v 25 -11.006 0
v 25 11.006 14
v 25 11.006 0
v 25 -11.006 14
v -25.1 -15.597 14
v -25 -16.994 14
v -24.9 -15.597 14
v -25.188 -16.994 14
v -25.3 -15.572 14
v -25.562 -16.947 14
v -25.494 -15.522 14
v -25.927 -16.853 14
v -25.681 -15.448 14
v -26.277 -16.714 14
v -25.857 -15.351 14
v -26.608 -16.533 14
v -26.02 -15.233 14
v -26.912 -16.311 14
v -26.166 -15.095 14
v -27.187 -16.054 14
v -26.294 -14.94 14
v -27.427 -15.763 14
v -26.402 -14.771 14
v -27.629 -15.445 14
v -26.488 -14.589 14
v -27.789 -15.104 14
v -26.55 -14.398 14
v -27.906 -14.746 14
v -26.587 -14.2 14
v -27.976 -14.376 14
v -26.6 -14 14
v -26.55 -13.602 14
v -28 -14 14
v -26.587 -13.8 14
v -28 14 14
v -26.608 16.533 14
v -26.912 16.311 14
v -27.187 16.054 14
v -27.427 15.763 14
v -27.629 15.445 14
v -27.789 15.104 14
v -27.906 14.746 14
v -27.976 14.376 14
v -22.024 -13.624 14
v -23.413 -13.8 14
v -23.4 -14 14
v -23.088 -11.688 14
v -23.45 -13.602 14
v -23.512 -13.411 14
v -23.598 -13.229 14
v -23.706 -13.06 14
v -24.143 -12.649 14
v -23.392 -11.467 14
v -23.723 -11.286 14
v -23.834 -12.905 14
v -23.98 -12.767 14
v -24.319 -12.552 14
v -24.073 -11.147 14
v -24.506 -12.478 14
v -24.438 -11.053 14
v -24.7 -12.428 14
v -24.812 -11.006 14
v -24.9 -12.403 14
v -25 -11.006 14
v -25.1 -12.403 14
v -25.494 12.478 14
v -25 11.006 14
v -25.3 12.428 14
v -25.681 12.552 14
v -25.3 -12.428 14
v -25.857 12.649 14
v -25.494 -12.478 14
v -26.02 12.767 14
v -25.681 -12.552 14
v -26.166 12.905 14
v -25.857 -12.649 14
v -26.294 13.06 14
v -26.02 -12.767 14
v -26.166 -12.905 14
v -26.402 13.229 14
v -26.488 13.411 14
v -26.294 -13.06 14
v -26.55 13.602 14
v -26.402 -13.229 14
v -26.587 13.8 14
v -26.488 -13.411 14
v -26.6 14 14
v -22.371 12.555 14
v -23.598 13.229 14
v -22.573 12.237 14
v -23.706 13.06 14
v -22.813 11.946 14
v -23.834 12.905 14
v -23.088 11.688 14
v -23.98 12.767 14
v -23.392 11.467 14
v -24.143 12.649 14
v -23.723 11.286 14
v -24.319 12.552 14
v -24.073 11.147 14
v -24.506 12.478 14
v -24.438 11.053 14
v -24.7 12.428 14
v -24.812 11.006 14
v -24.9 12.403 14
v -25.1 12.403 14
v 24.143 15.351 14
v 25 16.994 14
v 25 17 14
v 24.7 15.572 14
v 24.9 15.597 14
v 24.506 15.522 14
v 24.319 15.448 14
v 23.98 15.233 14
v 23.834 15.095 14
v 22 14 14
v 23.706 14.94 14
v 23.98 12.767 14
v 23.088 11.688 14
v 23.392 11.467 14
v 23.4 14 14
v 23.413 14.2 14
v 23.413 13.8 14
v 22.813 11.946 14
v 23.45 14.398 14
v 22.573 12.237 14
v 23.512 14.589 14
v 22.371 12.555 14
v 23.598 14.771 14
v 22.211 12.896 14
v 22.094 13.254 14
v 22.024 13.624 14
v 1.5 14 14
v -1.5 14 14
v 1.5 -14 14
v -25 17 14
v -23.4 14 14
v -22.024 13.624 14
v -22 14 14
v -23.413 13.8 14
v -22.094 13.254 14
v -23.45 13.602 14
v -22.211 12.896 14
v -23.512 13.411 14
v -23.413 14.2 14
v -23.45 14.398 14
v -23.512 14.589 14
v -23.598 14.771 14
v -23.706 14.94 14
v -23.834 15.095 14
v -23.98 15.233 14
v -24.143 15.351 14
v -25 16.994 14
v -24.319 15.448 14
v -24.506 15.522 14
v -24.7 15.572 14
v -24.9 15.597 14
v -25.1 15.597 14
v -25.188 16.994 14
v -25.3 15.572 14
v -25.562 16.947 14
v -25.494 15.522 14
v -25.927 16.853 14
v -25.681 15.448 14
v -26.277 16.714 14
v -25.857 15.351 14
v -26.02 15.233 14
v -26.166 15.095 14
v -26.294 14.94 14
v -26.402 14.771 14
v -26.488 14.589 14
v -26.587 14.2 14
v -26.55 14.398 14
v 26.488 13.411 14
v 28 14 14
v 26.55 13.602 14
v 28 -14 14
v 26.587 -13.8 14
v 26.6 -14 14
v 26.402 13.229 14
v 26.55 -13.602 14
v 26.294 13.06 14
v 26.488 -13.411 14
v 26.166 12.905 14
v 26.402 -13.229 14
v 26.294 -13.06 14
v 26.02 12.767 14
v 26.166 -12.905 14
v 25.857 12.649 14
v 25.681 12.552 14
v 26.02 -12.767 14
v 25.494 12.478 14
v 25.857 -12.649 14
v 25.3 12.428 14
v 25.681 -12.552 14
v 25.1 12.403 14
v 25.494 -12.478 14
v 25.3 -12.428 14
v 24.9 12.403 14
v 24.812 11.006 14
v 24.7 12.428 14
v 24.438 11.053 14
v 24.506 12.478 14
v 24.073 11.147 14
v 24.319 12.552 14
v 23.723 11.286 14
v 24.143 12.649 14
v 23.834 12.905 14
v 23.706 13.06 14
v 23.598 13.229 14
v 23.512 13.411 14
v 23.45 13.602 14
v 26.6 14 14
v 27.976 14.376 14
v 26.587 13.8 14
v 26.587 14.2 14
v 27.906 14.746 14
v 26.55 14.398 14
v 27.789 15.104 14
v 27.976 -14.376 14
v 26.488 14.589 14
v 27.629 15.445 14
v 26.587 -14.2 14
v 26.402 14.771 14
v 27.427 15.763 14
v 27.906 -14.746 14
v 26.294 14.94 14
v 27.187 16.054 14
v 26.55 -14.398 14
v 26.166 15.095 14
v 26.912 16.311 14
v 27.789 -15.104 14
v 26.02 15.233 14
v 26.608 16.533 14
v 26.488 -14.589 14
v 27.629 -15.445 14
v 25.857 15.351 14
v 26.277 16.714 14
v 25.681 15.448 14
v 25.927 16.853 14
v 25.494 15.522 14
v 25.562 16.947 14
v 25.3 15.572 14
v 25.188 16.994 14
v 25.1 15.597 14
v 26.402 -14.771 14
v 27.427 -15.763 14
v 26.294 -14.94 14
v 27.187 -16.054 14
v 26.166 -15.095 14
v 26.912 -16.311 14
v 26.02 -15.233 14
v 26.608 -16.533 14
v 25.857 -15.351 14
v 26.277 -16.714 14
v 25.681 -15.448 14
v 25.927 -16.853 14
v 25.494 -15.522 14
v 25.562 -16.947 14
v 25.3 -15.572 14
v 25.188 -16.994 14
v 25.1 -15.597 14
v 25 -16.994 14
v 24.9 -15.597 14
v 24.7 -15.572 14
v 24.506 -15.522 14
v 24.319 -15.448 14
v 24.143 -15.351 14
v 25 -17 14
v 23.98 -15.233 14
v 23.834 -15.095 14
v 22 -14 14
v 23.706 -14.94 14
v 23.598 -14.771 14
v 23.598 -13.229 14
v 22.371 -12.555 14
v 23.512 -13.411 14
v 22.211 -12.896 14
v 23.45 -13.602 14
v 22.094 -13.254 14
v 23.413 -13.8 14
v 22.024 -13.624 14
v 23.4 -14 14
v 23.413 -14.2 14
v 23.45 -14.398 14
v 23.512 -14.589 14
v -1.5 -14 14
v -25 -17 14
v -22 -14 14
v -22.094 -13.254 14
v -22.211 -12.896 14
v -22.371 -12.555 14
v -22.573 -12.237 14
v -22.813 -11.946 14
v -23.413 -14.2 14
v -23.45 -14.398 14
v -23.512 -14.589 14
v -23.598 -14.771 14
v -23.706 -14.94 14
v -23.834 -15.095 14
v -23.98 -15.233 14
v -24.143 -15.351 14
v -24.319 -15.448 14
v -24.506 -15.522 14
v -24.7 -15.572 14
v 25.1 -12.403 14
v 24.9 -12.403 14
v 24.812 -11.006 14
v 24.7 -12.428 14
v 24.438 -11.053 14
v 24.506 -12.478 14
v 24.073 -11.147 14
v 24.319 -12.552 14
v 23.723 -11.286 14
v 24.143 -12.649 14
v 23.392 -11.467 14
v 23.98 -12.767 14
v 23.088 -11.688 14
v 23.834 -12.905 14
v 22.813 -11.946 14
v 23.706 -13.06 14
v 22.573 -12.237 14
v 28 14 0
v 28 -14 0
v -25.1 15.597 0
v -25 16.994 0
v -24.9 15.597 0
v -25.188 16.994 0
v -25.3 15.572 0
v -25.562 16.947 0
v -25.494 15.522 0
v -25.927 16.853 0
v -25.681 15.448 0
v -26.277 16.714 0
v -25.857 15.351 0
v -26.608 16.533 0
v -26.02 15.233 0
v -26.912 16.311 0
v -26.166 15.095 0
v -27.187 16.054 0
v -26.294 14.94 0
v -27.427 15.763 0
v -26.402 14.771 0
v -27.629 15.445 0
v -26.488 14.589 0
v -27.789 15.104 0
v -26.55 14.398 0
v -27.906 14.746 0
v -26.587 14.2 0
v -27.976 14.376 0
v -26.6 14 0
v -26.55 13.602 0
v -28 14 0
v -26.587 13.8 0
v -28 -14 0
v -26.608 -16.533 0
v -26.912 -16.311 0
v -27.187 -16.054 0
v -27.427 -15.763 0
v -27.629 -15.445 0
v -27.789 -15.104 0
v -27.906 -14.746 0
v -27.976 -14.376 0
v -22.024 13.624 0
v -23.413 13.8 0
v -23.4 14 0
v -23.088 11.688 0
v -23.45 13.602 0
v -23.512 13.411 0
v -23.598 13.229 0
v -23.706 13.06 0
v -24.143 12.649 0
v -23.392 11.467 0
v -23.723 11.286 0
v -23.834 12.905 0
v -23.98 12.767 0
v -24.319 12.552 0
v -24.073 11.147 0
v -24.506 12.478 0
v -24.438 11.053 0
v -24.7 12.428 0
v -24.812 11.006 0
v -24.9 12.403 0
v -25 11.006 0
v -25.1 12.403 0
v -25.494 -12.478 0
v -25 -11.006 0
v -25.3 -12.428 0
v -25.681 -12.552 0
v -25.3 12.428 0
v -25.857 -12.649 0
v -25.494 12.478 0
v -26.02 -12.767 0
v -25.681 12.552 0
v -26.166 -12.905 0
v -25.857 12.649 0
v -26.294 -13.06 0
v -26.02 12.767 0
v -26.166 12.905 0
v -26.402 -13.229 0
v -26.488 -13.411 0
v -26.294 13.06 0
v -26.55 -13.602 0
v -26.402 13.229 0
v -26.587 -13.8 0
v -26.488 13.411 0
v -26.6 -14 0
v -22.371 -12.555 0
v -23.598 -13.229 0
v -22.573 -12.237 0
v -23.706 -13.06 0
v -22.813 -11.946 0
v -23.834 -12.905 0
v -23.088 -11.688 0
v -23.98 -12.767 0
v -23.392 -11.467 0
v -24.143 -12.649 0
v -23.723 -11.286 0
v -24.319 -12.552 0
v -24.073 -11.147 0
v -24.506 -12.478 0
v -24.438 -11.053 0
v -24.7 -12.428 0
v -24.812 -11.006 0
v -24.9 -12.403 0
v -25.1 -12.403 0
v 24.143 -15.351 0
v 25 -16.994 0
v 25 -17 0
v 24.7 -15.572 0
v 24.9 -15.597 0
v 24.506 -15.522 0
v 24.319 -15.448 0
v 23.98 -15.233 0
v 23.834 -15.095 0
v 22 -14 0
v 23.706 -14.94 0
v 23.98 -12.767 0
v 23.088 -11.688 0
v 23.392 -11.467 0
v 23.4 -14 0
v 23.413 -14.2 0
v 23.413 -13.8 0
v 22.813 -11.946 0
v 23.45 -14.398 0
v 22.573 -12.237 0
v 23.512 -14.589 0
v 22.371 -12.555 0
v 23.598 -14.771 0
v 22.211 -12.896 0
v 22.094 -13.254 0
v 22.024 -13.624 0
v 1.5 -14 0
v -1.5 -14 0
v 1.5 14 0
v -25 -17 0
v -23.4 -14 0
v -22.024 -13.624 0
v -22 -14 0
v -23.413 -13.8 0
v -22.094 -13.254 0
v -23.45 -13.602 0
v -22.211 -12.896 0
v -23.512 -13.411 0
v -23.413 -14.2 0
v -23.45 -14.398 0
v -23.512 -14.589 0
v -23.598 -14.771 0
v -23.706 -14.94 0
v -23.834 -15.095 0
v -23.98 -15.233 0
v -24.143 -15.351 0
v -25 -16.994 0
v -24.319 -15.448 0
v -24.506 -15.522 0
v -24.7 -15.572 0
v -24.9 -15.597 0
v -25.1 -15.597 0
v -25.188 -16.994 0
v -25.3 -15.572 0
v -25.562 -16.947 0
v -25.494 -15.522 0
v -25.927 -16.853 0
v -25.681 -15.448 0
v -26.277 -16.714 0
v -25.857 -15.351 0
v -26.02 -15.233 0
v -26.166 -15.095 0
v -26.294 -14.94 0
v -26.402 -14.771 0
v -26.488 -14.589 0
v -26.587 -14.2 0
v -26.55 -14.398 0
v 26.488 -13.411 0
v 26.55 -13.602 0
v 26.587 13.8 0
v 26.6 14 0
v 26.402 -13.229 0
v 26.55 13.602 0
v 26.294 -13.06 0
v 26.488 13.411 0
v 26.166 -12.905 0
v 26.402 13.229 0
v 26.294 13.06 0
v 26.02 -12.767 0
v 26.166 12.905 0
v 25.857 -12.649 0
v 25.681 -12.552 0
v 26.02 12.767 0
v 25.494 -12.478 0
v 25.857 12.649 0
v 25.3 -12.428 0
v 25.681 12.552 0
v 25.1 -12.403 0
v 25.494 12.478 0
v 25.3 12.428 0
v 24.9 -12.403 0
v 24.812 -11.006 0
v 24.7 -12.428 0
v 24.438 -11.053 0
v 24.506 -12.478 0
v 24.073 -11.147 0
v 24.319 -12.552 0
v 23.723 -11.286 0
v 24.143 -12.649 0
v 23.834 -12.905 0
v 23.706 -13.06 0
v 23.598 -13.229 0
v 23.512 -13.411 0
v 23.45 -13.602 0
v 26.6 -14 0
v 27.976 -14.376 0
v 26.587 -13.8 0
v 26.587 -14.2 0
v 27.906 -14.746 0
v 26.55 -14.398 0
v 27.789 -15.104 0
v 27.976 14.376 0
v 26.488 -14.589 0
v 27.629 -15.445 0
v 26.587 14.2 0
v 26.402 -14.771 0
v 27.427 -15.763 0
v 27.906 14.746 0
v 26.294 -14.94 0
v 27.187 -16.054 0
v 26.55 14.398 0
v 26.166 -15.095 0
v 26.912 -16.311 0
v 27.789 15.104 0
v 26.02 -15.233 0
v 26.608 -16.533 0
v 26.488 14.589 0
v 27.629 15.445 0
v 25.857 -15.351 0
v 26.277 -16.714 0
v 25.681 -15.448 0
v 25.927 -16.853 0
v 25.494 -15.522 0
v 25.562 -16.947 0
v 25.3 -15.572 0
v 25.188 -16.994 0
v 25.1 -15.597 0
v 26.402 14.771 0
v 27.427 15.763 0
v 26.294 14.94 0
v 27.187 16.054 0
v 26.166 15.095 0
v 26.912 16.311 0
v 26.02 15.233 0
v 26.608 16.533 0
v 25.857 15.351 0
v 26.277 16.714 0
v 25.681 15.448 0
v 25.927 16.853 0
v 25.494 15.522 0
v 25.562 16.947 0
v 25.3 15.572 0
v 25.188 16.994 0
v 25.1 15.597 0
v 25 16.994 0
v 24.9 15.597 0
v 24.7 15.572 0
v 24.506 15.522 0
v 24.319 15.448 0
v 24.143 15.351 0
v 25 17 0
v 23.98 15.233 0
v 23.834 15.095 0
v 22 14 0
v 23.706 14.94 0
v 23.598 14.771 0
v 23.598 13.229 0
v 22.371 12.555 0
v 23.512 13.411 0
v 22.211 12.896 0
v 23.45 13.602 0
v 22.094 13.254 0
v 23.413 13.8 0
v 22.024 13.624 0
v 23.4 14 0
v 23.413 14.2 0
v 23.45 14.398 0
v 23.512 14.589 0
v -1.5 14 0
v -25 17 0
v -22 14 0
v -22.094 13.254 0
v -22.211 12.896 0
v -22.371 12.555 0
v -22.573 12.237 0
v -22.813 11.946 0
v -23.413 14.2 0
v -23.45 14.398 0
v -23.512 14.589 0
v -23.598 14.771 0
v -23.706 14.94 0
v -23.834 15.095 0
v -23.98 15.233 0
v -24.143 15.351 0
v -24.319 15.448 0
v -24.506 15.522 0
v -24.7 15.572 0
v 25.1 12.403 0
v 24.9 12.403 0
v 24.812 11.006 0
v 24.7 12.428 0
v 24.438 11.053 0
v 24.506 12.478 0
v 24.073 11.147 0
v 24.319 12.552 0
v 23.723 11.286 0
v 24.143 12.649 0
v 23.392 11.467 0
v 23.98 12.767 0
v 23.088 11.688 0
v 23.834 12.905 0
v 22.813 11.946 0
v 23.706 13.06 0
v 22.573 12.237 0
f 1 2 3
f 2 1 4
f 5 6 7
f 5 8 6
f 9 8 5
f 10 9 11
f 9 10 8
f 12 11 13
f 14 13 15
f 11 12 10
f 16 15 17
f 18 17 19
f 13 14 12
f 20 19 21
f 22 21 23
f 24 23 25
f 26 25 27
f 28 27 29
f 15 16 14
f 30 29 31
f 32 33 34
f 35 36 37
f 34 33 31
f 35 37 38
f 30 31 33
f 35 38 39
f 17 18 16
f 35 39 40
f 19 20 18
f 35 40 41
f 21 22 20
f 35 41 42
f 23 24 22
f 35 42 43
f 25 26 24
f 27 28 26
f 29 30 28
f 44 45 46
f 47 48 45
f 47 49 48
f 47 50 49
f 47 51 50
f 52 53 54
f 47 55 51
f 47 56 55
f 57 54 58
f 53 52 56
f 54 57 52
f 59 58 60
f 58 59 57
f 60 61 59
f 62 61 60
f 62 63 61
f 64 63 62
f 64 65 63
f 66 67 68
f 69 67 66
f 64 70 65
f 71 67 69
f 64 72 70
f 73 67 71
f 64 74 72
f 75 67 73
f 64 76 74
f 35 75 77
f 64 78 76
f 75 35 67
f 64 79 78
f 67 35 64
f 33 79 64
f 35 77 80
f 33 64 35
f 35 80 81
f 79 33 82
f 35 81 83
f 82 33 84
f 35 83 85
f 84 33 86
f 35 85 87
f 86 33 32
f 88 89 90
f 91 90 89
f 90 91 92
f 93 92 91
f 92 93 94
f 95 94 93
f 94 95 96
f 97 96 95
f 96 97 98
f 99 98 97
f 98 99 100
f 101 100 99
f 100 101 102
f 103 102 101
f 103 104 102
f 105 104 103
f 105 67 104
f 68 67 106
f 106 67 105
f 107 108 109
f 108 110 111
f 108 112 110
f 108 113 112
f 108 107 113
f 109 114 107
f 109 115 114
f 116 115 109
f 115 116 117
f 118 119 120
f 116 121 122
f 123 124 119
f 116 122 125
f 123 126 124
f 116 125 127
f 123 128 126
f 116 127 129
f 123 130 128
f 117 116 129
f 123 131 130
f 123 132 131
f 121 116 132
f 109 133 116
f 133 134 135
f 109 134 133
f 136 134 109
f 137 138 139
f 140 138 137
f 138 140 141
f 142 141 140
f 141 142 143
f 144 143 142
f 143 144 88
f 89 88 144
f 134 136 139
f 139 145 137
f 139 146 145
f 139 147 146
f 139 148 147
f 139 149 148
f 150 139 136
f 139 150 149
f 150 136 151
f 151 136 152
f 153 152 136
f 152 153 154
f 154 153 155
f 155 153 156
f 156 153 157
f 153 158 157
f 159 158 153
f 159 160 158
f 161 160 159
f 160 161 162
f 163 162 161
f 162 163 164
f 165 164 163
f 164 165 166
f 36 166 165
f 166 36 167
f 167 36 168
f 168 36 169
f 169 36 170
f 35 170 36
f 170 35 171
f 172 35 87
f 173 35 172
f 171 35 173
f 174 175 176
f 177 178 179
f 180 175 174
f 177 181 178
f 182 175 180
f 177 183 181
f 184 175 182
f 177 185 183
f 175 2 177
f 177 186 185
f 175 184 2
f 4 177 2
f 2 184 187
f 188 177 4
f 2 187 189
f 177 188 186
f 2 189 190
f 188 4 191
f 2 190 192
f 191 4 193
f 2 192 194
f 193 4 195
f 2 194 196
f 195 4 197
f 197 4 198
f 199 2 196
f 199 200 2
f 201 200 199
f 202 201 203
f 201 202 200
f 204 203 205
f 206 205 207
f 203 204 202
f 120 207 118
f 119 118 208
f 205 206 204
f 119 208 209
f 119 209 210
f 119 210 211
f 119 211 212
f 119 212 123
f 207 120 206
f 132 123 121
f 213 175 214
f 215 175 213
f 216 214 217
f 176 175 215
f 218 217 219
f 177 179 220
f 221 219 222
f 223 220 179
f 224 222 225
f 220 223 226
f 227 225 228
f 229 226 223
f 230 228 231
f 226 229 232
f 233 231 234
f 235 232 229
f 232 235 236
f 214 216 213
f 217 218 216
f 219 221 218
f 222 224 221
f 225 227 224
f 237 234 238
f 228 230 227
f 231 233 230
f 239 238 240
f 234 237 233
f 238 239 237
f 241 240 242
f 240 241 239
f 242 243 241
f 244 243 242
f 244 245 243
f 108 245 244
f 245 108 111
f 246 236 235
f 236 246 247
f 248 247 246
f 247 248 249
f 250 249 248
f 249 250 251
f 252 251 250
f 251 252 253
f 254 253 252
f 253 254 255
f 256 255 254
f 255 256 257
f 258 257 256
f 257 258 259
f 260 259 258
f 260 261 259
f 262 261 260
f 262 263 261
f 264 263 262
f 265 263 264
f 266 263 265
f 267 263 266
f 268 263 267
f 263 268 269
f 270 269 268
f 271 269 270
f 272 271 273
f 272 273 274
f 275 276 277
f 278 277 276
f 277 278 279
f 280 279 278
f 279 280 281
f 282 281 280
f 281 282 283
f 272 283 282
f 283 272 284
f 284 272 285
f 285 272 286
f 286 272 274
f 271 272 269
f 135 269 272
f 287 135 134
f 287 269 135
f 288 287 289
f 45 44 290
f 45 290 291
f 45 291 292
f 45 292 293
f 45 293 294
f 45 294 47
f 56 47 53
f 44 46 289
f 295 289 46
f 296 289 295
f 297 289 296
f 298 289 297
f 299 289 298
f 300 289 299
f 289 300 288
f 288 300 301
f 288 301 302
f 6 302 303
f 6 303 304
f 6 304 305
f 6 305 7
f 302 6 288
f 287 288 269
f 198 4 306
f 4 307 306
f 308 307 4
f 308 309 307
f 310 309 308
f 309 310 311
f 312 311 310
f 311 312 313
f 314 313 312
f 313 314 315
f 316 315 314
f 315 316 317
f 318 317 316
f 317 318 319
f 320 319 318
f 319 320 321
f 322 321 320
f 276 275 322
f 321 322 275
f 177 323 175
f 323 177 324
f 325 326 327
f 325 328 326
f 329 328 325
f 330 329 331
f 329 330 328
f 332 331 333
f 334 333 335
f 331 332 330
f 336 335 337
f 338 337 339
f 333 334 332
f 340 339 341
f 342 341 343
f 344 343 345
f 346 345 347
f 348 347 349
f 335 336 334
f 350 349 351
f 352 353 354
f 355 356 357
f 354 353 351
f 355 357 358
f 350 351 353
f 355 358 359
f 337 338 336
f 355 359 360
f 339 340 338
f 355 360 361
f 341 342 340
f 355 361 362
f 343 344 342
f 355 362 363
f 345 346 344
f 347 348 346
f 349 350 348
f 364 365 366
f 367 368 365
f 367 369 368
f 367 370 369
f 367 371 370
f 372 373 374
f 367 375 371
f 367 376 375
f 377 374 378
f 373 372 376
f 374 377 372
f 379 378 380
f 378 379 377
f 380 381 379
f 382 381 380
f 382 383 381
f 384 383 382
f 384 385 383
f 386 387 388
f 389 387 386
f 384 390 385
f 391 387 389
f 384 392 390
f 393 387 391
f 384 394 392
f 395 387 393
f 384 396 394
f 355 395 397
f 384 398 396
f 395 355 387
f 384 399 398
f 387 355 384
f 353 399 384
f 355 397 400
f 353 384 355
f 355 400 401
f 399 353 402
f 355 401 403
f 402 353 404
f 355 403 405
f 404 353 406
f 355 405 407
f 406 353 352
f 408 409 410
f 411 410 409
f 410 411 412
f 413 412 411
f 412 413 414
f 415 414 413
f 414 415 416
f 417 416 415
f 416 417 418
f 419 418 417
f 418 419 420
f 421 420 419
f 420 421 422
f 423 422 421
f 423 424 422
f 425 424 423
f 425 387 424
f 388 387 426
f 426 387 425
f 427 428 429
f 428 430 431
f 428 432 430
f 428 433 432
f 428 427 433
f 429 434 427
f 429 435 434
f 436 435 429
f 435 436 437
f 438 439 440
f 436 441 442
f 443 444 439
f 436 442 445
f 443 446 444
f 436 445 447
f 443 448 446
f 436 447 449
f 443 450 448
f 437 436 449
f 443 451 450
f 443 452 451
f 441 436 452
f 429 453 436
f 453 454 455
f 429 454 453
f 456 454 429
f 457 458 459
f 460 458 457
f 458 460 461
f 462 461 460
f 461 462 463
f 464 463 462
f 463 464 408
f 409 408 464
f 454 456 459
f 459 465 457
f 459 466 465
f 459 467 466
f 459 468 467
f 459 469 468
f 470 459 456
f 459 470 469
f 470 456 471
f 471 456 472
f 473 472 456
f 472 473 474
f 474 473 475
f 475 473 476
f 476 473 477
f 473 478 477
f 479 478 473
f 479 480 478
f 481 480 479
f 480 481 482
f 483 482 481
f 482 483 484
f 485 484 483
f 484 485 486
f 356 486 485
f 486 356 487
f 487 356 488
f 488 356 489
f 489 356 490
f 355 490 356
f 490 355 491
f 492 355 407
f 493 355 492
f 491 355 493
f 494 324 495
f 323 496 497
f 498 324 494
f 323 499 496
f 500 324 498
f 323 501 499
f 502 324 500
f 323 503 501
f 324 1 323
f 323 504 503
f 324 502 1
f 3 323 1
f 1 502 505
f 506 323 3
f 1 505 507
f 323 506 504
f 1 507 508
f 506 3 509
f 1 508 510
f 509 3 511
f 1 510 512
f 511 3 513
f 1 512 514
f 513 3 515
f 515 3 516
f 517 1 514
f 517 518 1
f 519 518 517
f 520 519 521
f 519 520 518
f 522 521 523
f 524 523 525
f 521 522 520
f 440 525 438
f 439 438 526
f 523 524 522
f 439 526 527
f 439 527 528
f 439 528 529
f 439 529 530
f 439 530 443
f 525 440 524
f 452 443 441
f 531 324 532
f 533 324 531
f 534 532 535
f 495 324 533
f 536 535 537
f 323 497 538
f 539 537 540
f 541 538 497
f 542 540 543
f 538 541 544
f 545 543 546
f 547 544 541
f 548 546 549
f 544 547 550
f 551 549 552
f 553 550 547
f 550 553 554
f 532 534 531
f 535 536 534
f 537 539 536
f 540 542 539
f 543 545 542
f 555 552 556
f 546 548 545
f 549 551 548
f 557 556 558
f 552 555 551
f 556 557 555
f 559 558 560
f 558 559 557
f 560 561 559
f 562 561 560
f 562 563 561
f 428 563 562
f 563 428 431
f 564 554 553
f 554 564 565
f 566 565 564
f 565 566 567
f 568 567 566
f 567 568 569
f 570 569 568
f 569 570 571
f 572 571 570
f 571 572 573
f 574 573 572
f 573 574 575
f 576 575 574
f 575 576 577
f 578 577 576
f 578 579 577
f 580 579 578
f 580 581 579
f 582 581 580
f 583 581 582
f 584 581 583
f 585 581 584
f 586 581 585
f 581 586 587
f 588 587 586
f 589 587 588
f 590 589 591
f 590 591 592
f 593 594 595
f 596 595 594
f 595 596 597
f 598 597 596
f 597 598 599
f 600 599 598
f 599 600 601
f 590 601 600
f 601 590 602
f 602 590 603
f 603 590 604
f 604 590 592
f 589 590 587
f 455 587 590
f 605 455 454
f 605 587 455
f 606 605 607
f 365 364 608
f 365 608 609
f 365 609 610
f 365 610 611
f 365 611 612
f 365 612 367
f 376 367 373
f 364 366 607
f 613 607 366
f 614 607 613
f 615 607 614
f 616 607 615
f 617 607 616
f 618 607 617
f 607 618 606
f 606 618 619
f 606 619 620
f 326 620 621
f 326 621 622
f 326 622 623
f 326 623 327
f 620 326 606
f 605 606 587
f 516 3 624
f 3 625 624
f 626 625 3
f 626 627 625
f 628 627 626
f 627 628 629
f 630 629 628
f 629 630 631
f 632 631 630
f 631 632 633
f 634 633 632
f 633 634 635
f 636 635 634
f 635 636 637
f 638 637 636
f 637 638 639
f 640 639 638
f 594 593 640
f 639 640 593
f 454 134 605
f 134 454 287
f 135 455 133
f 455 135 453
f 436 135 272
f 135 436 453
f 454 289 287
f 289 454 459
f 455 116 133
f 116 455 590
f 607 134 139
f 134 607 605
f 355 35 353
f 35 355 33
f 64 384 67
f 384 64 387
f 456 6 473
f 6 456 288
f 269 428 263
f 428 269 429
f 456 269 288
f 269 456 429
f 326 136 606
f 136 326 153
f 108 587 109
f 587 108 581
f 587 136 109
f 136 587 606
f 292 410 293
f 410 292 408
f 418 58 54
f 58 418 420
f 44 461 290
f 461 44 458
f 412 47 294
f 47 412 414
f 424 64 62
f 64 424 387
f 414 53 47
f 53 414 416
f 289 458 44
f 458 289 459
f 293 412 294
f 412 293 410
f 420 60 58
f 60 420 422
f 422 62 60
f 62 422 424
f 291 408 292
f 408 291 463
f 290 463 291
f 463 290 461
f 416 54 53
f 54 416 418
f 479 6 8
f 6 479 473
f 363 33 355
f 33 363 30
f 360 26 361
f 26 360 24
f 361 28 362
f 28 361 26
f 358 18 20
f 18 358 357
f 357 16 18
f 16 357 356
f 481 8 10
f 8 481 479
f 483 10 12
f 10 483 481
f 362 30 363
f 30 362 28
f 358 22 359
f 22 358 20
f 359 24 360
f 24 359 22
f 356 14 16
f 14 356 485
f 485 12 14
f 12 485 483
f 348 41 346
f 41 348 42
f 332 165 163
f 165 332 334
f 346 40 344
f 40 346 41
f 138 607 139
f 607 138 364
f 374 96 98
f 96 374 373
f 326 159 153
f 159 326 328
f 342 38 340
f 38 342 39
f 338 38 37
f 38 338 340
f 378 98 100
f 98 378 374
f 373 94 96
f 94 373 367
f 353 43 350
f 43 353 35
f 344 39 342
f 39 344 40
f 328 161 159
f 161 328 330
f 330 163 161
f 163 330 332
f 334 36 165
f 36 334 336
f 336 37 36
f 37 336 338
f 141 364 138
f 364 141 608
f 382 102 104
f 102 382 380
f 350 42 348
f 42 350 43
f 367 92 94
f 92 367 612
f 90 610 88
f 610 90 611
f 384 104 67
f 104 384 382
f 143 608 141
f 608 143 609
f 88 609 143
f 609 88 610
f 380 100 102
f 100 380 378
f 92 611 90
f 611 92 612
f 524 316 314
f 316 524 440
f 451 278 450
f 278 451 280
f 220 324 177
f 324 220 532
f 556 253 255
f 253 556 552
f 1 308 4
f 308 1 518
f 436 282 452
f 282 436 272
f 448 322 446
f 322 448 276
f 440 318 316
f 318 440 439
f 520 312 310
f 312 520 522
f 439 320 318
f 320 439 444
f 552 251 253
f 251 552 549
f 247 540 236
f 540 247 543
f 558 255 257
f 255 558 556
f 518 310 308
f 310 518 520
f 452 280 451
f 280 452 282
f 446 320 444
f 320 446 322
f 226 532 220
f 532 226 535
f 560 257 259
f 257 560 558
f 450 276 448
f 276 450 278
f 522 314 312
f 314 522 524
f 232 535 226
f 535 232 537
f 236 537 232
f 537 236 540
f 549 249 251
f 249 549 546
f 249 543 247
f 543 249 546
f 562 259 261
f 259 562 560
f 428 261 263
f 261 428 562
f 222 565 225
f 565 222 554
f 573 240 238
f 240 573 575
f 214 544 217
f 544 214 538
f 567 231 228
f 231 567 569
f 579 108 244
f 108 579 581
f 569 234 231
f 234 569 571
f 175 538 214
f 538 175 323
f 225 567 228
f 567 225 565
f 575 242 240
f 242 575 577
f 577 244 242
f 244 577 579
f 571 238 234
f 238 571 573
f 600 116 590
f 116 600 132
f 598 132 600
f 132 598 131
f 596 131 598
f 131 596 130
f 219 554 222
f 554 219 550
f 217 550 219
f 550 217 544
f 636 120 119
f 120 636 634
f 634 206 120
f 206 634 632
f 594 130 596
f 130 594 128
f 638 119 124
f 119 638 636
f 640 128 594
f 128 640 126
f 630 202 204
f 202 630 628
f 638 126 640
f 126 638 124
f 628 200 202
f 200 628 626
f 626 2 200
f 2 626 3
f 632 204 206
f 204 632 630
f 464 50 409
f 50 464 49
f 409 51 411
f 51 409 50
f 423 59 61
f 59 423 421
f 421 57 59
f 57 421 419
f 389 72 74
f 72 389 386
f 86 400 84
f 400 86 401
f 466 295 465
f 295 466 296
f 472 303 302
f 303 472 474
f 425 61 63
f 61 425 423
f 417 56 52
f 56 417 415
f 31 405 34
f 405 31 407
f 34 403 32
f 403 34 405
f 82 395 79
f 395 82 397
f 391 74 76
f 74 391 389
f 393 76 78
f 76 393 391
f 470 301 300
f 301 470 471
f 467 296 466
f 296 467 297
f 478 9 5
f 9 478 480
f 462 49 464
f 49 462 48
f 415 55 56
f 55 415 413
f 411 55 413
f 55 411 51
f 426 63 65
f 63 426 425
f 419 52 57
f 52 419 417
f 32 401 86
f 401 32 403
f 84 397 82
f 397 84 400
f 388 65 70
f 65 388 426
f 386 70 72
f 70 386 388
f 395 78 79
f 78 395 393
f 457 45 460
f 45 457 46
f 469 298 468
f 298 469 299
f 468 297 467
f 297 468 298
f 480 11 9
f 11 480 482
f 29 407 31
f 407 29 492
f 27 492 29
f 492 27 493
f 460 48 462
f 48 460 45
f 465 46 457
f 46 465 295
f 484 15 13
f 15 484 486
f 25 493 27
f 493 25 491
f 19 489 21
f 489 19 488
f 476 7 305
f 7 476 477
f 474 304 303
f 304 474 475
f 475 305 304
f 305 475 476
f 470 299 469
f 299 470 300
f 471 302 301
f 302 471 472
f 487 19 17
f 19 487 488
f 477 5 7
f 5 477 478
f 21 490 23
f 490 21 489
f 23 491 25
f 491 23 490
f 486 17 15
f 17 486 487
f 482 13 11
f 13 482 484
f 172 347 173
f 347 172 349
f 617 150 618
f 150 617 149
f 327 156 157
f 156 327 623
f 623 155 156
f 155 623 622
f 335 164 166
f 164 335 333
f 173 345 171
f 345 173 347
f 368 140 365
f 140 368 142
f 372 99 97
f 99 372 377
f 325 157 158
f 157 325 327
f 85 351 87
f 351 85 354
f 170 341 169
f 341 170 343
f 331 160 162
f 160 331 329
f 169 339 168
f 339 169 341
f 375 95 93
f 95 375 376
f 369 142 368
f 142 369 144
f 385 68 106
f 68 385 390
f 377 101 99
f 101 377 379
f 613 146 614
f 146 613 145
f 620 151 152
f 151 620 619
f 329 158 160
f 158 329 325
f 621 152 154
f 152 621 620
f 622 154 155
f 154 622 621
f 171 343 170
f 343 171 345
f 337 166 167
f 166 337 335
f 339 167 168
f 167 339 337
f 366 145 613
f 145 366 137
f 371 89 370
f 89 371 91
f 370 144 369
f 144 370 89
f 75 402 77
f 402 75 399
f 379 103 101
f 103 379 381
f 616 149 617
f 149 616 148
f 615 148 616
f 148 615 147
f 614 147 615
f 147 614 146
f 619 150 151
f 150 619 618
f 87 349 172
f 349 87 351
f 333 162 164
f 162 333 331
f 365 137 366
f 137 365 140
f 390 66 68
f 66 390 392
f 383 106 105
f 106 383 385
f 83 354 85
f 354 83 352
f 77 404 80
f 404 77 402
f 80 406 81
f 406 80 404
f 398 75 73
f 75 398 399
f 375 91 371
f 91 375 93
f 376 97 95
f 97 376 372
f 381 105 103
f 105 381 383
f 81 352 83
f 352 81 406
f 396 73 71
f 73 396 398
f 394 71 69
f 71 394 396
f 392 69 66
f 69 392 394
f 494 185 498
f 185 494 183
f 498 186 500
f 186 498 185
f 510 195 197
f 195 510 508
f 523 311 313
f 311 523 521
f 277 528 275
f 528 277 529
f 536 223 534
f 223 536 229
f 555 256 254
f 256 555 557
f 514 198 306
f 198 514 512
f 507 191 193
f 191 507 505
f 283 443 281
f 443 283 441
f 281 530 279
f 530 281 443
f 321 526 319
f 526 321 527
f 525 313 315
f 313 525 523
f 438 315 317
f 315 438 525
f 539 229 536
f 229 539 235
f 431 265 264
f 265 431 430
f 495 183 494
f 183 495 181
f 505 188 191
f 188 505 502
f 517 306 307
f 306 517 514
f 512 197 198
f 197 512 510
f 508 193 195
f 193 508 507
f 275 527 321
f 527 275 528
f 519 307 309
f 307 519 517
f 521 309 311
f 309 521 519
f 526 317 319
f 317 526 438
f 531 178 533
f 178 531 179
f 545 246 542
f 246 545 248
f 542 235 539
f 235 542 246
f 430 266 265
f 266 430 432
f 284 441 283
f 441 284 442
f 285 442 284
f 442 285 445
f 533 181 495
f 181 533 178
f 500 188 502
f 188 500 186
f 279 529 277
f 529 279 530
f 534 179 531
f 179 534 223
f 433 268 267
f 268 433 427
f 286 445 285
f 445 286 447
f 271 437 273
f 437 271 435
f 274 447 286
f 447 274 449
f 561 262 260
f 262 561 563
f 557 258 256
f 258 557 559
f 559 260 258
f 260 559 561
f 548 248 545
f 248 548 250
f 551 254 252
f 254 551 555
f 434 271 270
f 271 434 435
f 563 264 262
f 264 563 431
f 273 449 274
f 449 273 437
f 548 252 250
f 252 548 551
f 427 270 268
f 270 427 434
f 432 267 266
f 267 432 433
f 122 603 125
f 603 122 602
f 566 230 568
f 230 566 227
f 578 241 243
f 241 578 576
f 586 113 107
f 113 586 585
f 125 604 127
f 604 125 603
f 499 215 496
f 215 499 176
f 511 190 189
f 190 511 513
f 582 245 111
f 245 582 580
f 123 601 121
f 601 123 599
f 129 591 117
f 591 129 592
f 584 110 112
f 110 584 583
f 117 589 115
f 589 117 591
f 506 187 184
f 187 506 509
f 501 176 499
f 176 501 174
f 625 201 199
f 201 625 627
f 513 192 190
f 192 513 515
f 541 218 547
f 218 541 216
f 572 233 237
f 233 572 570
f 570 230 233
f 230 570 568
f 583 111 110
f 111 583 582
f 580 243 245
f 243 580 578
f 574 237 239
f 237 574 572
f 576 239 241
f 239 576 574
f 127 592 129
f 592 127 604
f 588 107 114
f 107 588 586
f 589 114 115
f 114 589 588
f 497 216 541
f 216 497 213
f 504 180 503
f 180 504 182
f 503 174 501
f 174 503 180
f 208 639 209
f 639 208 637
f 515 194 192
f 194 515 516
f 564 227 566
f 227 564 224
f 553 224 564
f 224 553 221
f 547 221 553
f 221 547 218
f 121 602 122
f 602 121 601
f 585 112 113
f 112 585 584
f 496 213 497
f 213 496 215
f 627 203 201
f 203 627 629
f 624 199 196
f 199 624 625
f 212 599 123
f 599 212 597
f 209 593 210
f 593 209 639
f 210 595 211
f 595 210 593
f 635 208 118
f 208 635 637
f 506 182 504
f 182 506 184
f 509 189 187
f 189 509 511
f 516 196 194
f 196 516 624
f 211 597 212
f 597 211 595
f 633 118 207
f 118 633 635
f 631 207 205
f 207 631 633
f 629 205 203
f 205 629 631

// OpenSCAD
// file: params.scad
  base = 0.0;
  length = 50.0;
  len2 = length/2.0;
  width = 28.0;
  w2 = width/2.0;
  height = 14.0;
  thickness = 3.0;
  th2 = thickness/2.0;
  x1 = 25.0;
  y1 = 11.5;
  th_plate = 4.0;
  ha_thick = 4.0; // hose adapter plate thickness

  // depth of threadable hole
  scdepth = 4.0;

  // m3 screws
  rm3small = 1.4;  // threadable hole
  rm3large = 1.6;  // passthrough hole
  rm3shank = 1.65;  // passthrough hole - no threads
// main file
$fn=50;
include <params.scad>; 
module ValveBox2() {
  difference() {
    union(){
        translate([len2,-w2,base])cube([thickness,width,height]);
        translate([-th2,-w2,base])cube([thickness,width,height]);
        translate([-len2-thickness,-w2,base])cube([thickness,width,height]);
        translate([-len2,-w2-thickness,base])cube([length,thickness,height]);
        translate([-len2,w2,base])cube([length,thickness,height]);
        
        translate([-len2,-w2,base])cylinder(r=3, h=height);
        translate([-len2,w2,base])cylinder(r=3, h=height);
        translate([len2,-w2,base])cylinder(r=3, h=height);
        translate([len2,w2,base])cylinder(r=3, h=height);
    };
    translate([-len2,-w2,base-0.01])cylinder(r=rm3large, h=height+0.02);
    translate([-len2,w2,base-0.01])cylinder(r=rm3large, h=height+0.02);
    translate([len2,-w2,base-0.01])cylinder(r=rm3large, h=height+0.02);
    translate([len2,w2,base-0.01])cylinder(r=rm3large, h=height+0.02);


  };
};
ValveBox2();
